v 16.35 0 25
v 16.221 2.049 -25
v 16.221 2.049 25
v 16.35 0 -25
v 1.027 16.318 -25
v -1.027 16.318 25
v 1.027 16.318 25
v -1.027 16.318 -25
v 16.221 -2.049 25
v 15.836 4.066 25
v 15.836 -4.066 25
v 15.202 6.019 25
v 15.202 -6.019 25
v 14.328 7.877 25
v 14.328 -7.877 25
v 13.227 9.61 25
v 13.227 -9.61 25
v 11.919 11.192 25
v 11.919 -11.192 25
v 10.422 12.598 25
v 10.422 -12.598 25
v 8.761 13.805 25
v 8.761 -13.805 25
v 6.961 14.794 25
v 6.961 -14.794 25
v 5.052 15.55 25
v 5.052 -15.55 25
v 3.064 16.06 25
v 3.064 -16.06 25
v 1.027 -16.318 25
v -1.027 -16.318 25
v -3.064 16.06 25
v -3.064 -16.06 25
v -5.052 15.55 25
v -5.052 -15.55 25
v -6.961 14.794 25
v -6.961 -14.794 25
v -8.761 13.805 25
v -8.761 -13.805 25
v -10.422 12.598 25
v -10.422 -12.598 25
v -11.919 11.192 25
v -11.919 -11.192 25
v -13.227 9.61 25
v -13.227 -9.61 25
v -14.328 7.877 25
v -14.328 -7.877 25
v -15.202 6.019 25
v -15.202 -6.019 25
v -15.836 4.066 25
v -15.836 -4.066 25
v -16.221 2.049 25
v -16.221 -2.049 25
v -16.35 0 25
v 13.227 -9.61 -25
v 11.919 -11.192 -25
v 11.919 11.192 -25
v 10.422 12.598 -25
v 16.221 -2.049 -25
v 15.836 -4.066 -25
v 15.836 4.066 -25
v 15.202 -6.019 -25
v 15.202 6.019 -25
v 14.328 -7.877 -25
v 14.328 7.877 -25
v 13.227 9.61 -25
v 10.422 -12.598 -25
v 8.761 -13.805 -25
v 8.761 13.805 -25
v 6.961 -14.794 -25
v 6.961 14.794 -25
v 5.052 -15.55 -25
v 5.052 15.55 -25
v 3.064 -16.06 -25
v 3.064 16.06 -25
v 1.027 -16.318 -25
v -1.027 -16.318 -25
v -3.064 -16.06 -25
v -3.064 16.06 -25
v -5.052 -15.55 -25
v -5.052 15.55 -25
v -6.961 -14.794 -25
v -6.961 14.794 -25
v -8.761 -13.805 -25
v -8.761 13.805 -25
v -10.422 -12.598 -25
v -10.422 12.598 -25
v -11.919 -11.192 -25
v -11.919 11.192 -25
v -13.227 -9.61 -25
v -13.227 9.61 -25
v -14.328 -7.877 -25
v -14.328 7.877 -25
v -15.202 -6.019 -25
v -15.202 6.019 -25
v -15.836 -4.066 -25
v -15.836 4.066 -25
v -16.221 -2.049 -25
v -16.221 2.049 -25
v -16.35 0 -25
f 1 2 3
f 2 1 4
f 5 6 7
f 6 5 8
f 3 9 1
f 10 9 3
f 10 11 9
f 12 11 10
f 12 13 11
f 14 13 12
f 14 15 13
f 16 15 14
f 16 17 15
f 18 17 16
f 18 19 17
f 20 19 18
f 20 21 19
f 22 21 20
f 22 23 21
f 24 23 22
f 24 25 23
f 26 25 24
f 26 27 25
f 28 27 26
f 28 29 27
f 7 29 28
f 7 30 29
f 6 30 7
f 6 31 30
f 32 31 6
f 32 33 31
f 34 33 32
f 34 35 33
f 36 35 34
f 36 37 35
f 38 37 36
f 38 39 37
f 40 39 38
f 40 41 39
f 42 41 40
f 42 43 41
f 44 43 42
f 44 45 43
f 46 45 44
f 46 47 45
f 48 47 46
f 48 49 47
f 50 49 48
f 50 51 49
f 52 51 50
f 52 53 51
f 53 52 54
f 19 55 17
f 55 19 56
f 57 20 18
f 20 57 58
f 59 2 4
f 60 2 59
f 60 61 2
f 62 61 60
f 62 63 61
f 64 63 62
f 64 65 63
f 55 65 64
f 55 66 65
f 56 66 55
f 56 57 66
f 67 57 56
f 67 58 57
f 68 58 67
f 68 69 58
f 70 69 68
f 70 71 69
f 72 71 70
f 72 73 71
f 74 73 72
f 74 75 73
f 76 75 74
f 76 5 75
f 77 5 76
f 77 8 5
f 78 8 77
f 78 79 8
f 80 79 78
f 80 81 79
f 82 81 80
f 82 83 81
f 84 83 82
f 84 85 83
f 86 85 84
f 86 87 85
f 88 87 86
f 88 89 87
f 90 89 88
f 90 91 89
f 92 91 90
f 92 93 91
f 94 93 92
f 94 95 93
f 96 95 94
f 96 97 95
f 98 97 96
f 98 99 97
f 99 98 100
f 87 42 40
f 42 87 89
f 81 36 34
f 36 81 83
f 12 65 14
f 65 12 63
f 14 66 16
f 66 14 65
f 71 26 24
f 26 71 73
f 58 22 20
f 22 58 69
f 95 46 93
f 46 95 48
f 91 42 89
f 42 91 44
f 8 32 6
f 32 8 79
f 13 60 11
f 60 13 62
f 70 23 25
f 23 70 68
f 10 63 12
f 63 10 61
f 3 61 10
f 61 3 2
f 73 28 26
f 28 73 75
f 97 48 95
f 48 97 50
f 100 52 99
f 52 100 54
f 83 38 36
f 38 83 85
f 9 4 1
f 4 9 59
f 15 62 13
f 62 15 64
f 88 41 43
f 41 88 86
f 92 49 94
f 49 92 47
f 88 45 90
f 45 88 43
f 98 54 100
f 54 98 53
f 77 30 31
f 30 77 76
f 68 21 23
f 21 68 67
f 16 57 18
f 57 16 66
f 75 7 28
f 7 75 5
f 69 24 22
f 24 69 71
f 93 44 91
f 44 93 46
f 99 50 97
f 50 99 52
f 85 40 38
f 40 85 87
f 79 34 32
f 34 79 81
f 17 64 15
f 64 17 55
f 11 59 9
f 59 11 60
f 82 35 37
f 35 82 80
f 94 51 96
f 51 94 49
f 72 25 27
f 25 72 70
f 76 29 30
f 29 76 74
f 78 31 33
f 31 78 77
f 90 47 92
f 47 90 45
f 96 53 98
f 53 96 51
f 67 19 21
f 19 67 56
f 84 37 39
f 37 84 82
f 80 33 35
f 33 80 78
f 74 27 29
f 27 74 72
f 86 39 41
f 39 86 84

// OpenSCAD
$fn = 50;


difference() {
	union() {
		translate(v = [0, 0, -25.0000000000]) {
			cylinder(h = 50, r = 16.3500000000);
		}
	}
	union() {
		translate(v = [0, 0, -100.0000000000]) {
			cylinder(h = 200, r = 0);
		}
	}
}
